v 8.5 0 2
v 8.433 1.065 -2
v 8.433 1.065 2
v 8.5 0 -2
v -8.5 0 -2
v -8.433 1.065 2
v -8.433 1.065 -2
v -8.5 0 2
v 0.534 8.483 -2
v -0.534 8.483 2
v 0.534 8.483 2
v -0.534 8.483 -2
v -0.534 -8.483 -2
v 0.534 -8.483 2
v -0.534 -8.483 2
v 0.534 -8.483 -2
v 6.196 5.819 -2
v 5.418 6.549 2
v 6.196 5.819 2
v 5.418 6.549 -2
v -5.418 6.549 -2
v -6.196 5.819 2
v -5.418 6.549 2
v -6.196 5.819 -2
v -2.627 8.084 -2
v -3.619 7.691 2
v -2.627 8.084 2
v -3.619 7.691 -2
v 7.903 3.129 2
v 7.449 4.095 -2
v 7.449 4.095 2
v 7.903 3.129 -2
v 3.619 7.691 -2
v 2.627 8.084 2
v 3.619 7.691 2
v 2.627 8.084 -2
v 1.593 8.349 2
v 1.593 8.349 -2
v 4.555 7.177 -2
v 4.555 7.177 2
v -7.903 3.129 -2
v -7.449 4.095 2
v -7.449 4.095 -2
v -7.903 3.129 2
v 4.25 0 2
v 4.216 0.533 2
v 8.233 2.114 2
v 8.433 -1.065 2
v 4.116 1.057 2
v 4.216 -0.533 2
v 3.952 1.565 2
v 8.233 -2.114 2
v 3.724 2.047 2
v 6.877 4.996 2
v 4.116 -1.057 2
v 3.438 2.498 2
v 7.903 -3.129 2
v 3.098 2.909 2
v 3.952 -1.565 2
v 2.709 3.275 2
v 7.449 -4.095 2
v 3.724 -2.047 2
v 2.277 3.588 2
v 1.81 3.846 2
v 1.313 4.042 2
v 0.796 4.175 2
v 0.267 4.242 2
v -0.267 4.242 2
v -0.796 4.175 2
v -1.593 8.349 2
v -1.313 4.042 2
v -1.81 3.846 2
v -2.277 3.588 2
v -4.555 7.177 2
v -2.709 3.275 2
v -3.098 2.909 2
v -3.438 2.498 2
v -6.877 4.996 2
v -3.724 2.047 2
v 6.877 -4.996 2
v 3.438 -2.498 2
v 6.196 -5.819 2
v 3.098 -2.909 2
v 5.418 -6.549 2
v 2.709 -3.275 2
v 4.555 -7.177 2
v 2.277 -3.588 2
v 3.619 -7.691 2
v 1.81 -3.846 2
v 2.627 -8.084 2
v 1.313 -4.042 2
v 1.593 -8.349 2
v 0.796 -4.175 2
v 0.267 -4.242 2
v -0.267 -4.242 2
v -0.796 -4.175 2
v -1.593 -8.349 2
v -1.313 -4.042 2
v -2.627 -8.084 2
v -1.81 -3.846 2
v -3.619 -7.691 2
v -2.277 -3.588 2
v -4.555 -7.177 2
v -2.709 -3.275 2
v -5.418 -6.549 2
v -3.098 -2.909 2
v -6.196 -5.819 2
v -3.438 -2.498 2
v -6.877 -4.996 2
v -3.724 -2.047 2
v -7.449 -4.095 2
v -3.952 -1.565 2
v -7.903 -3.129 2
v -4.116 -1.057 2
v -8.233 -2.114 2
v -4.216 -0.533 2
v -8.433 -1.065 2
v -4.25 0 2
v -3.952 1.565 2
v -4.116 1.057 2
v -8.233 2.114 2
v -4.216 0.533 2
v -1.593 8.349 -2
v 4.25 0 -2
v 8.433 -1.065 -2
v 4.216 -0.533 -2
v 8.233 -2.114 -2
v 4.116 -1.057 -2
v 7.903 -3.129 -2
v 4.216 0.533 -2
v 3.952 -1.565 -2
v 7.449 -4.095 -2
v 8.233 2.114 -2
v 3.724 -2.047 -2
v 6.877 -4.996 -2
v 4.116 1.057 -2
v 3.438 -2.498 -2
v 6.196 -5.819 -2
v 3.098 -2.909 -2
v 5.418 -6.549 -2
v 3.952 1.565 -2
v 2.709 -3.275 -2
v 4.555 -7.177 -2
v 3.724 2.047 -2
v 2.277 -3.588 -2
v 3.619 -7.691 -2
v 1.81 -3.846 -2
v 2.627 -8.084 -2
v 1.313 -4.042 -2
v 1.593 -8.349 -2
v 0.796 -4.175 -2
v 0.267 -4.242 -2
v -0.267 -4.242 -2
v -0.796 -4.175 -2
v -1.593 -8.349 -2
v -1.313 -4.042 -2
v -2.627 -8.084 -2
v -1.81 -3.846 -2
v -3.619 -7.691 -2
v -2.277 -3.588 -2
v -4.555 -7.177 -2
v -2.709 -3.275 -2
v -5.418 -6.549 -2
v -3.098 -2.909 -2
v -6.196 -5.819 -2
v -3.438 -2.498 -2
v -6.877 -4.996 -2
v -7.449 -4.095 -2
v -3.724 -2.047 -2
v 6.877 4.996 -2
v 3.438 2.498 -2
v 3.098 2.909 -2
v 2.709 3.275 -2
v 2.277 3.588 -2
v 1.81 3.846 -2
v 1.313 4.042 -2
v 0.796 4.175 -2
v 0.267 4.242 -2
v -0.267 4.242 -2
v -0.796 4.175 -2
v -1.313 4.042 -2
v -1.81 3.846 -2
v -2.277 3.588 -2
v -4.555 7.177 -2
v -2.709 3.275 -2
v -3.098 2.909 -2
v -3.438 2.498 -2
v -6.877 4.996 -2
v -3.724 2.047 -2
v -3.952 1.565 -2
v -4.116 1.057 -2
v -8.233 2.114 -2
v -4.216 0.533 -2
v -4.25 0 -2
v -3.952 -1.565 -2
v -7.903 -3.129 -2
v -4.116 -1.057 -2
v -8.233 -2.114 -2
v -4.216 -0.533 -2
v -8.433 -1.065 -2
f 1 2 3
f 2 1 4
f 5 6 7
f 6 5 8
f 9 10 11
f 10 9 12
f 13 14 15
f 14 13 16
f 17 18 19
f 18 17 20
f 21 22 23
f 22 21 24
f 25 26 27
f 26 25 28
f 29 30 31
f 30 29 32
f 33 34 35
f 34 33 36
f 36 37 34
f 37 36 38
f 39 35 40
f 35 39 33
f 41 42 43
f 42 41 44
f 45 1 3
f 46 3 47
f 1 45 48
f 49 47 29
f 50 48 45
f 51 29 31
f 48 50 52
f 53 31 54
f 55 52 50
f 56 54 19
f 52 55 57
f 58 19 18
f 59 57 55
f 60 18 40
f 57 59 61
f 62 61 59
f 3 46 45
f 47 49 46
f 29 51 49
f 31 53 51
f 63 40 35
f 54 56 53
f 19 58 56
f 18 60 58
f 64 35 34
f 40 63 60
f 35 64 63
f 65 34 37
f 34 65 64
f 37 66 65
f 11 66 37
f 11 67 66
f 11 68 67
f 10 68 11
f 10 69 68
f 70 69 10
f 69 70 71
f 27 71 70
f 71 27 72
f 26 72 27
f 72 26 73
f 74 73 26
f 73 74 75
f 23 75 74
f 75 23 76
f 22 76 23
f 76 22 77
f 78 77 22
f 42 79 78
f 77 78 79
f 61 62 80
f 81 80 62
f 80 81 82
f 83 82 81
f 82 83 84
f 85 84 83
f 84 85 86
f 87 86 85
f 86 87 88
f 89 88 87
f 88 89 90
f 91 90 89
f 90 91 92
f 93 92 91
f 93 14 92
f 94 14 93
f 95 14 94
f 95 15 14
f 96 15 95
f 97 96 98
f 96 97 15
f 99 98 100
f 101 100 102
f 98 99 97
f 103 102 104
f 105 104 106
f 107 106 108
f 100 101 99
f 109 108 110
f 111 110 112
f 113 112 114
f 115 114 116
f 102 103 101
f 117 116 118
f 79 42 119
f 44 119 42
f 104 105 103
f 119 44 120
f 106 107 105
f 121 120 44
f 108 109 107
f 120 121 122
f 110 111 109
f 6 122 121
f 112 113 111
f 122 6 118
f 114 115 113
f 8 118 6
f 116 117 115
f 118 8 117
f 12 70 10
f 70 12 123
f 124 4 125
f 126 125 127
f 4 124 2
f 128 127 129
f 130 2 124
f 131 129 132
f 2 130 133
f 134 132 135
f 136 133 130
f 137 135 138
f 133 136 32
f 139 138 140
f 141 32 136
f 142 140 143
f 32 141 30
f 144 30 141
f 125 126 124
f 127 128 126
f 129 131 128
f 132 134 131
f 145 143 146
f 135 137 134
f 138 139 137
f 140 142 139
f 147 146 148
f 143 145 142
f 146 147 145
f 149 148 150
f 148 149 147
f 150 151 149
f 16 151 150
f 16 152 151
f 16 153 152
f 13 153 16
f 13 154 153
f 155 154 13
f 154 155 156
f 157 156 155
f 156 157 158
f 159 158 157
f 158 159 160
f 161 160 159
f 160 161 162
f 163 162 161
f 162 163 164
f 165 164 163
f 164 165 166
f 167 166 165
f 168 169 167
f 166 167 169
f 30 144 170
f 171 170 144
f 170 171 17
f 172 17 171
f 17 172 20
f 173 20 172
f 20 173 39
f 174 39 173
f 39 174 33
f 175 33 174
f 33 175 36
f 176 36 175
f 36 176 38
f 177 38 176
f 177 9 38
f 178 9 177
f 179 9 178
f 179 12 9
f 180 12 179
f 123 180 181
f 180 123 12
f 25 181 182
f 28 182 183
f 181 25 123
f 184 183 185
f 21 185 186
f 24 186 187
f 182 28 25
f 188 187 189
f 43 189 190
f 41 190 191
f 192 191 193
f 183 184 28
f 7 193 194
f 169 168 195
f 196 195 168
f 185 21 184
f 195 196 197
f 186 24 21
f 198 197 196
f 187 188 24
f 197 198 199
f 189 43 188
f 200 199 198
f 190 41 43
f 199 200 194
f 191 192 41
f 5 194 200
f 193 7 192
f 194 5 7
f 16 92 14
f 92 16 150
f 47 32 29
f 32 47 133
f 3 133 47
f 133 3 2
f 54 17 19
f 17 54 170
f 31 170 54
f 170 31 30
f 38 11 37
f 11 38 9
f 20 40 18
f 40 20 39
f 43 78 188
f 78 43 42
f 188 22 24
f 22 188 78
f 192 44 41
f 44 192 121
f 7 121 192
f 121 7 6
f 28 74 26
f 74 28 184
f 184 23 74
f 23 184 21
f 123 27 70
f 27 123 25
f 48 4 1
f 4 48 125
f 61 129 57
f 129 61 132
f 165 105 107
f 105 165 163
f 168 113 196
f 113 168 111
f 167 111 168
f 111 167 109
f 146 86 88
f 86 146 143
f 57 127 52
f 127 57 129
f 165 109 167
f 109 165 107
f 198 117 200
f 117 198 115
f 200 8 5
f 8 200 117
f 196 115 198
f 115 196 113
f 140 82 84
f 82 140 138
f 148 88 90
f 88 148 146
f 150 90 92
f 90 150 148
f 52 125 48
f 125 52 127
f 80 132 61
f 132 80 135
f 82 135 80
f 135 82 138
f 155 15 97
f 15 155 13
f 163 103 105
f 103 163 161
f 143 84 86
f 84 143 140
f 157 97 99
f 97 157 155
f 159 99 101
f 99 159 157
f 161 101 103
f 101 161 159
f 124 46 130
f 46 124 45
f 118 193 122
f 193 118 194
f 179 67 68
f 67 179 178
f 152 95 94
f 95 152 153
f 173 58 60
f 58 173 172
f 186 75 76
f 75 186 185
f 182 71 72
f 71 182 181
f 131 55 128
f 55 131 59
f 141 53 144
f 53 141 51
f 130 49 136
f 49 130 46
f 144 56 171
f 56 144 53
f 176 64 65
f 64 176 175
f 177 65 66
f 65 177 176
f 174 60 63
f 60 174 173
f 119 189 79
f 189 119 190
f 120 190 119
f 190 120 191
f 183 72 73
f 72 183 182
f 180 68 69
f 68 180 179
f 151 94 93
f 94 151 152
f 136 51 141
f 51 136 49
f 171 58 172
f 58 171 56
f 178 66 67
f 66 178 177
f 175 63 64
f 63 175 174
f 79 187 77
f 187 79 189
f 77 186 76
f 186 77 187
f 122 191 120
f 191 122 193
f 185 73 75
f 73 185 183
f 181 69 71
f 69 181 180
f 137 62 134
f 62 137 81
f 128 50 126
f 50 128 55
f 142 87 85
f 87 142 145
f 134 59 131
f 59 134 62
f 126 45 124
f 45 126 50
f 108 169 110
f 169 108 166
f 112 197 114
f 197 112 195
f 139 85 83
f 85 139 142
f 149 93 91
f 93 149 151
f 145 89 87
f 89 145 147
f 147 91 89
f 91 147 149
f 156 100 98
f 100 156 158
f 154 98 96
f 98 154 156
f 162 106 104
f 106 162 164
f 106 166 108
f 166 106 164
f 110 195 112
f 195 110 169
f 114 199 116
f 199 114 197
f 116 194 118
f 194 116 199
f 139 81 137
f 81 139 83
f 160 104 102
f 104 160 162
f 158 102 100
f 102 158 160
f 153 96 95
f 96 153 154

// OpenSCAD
$fn = 50;


difference() {
	union() {
		translate(v = [0, 0, -2.0000000000]) {
			cylinder(h = 4, r = 8.5000000000);
		}
	}
	union() {
		translate(v = [0, 0, -100.0000000000]) {
			cylinder(h = 200, r = 4.2500000000);
		}
	}
}
